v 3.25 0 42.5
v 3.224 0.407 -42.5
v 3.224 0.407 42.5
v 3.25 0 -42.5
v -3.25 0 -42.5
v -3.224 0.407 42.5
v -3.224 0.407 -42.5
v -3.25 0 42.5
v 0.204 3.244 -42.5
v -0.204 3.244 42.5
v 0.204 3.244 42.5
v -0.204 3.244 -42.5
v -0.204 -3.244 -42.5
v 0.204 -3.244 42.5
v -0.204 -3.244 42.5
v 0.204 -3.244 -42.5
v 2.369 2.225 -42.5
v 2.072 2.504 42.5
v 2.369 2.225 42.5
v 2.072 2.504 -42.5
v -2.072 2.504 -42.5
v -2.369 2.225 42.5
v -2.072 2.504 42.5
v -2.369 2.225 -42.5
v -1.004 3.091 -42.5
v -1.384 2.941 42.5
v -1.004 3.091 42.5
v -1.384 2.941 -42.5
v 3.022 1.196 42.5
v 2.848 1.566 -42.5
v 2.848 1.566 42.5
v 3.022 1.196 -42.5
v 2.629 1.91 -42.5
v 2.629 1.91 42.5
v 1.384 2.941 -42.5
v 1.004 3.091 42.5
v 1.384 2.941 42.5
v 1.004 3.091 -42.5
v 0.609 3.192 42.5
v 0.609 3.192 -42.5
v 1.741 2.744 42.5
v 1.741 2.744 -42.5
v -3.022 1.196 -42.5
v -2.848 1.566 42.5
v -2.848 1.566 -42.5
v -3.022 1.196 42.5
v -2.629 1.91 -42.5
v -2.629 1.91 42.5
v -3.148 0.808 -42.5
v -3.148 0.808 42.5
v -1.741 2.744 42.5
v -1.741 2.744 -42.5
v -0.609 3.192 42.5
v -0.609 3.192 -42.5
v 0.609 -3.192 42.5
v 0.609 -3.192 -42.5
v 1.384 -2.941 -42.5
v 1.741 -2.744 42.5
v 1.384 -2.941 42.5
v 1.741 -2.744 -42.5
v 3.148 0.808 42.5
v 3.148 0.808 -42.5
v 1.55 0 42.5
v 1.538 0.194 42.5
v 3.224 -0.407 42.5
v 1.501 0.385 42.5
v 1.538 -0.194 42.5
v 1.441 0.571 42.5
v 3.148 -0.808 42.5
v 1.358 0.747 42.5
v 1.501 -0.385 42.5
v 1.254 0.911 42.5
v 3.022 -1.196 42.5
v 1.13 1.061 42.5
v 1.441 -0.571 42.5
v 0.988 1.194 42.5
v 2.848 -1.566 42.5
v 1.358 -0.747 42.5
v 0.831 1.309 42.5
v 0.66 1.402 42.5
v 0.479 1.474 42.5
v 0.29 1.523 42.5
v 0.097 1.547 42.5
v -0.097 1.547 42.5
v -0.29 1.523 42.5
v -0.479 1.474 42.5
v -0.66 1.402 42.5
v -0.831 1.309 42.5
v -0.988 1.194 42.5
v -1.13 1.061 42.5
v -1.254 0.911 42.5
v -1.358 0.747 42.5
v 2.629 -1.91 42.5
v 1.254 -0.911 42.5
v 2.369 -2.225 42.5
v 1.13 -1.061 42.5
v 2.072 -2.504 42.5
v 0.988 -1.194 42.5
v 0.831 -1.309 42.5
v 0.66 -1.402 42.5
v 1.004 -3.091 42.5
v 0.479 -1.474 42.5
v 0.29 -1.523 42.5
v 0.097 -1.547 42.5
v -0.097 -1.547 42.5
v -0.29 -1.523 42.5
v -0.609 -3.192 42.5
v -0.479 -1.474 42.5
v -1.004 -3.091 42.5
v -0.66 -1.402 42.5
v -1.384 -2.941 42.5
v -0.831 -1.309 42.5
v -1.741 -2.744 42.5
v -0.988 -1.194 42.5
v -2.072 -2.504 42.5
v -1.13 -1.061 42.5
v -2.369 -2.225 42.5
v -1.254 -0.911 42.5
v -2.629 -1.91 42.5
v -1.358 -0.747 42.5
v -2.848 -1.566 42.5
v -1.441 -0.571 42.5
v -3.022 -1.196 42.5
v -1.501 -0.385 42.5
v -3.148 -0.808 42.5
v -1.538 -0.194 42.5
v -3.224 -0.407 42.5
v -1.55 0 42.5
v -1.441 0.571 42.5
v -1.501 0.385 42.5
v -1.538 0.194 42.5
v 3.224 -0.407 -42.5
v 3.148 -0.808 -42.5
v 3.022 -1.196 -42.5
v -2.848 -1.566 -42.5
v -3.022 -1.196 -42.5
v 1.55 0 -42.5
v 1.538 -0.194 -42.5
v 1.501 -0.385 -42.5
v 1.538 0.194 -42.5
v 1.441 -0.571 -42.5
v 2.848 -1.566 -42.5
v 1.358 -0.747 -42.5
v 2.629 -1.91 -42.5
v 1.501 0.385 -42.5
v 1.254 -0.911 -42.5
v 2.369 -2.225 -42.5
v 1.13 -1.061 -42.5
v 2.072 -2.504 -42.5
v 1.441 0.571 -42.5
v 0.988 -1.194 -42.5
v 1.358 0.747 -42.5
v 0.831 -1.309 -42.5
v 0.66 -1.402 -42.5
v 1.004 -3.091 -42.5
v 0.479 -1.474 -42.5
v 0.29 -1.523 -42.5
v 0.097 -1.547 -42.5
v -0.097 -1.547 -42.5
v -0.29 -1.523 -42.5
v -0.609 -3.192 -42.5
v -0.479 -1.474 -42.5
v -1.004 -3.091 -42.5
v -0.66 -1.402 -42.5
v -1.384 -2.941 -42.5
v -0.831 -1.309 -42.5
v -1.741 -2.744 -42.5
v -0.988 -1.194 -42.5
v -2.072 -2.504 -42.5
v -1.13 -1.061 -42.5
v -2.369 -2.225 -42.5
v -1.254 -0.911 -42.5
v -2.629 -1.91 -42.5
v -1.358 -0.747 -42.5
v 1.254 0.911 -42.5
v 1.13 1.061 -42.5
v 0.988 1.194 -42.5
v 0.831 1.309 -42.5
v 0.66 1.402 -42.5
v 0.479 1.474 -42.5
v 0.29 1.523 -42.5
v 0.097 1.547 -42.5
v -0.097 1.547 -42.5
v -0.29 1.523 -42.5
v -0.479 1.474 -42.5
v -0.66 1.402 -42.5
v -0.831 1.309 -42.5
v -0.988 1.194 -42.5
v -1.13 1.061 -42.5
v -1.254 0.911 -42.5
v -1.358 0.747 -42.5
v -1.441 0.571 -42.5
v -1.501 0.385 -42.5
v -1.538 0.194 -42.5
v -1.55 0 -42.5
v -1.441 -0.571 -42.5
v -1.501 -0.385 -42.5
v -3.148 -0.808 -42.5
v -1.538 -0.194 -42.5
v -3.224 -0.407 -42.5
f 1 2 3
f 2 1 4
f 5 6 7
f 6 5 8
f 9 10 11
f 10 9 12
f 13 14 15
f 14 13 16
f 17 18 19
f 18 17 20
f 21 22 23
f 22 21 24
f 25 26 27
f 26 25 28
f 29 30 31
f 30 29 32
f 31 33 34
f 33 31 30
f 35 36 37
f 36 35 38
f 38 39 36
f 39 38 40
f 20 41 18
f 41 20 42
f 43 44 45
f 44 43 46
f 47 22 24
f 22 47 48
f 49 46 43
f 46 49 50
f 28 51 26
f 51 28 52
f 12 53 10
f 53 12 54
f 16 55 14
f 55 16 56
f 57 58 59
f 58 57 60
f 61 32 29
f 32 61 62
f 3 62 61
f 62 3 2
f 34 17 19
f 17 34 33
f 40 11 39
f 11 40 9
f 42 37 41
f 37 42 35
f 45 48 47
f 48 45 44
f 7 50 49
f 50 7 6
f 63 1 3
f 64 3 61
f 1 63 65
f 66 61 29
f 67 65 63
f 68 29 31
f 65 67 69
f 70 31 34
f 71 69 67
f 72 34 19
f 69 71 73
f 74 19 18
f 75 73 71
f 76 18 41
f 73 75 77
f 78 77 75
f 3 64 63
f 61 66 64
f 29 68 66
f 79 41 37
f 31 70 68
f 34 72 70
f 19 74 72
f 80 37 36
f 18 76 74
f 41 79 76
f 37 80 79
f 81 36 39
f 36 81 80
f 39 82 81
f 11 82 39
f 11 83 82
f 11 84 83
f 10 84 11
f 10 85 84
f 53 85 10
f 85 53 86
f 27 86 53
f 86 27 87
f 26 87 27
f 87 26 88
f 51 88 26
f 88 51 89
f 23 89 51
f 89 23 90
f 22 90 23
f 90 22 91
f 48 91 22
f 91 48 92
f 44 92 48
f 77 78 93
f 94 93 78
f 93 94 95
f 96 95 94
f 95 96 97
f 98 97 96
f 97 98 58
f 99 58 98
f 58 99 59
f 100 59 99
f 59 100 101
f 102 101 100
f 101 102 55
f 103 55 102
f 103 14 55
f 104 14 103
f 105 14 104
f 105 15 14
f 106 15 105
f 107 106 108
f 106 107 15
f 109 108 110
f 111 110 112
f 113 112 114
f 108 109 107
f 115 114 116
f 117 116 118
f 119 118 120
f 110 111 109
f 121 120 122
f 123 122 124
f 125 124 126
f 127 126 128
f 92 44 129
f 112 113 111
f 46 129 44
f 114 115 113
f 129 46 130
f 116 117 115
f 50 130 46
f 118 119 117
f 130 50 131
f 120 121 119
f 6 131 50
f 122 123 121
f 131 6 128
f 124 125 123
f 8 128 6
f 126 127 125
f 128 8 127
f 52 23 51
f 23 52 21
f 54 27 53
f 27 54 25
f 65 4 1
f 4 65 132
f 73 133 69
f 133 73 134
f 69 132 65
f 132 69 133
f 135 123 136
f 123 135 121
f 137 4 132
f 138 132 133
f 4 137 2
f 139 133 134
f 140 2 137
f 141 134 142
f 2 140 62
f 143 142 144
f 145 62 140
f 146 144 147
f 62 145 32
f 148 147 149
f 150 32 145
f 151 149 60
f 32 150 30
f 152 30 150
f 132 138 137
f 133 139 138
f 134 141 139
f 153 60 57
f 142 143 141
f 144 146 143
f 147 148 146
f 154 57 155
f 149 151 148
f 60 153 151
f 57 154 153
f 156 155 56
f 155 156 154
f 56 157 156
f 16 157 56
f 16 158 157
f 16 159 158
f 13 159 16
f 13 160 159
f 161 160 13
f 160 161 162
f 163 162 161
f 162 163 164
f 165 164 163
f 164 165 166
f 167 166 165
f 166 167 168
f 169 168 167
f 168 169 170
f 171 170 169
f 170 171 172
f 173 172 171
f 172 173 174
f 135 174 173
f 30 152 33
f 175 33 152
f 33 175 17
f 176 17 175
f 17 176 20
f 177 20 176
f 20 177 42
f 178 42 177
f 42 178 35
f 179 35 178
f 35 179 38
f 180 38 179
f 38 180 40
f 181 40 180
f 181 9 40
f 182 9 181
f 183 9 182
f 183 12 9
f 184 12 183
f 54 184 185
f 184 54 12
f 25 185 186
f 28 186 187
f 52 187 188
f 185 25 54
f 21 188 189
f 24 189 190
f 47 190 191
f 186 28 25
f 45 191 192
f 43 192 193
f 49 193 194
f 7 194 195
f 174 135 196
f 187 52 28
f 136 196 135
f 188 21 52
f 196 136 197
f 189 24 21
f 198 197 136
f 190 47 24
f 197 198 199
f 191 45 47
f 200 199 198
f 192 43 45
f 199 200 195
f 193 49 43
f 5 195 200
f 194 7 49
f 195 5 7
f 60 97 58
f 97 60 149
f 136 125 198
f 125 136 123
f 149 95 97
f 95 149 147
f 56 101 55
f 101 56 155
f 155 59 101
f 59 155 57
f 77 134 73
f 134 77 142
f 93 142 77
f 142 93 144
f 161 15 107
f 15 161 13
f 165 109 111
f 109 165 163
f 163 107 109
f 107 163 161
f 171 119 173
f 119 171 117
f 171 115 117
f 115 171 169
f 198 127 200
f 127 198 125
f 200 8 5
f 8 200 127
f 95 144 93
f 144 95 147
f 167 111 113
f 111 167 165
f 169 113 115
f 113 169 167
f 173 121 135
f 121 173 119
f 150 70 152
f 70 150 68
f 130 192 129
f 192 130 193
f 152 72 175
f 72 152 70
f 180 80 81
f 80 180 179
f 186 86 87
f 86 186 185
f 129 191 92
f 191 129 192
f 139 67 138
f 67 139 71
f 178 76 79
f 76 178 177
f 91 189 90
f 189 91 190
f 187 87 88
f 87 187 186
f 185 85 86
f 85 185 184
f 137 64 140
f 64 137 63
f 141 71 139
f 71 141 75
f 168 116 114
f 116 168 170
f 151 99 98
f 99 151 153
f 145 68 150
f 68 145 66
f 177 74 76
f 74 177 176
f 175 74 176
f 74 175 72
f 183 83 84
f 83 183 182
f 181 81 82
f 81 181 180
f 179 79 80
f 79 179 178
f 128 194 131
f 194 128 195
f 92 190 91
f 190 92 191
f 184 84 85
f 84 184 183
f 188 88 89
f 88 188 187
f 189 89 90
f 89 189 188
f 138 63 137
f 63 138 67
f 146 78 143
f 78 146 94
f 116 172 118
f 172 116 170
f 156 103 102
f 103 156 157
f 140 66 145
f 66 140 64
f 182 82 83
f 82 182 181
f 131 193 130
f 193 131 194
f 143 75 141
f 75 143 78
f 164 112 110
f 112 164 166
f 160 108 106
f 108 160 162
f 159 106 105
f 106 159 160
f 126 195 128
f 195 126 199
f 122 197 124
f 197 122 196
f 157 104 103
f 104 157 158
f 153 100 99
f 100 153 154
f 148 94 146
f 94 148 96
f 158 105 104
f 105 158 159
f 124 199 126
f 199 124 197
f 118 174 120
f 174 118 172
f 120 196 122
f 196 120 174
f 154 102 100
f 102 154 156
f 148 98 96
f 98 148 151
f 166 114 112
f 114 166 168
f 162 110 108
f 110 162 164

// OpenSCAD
$fn = 50;


difference() {
	union() {
		translate(v = [0, 0, -42.5000000000]) {
			cylinder(h = 85, r = 3.2500000000);
		}
	}
	union() {
		translate(v = [0, 0, -100.0000000000]) {
			cylinder(h = 200, r = 1.5500000000);
		}
	}
}
